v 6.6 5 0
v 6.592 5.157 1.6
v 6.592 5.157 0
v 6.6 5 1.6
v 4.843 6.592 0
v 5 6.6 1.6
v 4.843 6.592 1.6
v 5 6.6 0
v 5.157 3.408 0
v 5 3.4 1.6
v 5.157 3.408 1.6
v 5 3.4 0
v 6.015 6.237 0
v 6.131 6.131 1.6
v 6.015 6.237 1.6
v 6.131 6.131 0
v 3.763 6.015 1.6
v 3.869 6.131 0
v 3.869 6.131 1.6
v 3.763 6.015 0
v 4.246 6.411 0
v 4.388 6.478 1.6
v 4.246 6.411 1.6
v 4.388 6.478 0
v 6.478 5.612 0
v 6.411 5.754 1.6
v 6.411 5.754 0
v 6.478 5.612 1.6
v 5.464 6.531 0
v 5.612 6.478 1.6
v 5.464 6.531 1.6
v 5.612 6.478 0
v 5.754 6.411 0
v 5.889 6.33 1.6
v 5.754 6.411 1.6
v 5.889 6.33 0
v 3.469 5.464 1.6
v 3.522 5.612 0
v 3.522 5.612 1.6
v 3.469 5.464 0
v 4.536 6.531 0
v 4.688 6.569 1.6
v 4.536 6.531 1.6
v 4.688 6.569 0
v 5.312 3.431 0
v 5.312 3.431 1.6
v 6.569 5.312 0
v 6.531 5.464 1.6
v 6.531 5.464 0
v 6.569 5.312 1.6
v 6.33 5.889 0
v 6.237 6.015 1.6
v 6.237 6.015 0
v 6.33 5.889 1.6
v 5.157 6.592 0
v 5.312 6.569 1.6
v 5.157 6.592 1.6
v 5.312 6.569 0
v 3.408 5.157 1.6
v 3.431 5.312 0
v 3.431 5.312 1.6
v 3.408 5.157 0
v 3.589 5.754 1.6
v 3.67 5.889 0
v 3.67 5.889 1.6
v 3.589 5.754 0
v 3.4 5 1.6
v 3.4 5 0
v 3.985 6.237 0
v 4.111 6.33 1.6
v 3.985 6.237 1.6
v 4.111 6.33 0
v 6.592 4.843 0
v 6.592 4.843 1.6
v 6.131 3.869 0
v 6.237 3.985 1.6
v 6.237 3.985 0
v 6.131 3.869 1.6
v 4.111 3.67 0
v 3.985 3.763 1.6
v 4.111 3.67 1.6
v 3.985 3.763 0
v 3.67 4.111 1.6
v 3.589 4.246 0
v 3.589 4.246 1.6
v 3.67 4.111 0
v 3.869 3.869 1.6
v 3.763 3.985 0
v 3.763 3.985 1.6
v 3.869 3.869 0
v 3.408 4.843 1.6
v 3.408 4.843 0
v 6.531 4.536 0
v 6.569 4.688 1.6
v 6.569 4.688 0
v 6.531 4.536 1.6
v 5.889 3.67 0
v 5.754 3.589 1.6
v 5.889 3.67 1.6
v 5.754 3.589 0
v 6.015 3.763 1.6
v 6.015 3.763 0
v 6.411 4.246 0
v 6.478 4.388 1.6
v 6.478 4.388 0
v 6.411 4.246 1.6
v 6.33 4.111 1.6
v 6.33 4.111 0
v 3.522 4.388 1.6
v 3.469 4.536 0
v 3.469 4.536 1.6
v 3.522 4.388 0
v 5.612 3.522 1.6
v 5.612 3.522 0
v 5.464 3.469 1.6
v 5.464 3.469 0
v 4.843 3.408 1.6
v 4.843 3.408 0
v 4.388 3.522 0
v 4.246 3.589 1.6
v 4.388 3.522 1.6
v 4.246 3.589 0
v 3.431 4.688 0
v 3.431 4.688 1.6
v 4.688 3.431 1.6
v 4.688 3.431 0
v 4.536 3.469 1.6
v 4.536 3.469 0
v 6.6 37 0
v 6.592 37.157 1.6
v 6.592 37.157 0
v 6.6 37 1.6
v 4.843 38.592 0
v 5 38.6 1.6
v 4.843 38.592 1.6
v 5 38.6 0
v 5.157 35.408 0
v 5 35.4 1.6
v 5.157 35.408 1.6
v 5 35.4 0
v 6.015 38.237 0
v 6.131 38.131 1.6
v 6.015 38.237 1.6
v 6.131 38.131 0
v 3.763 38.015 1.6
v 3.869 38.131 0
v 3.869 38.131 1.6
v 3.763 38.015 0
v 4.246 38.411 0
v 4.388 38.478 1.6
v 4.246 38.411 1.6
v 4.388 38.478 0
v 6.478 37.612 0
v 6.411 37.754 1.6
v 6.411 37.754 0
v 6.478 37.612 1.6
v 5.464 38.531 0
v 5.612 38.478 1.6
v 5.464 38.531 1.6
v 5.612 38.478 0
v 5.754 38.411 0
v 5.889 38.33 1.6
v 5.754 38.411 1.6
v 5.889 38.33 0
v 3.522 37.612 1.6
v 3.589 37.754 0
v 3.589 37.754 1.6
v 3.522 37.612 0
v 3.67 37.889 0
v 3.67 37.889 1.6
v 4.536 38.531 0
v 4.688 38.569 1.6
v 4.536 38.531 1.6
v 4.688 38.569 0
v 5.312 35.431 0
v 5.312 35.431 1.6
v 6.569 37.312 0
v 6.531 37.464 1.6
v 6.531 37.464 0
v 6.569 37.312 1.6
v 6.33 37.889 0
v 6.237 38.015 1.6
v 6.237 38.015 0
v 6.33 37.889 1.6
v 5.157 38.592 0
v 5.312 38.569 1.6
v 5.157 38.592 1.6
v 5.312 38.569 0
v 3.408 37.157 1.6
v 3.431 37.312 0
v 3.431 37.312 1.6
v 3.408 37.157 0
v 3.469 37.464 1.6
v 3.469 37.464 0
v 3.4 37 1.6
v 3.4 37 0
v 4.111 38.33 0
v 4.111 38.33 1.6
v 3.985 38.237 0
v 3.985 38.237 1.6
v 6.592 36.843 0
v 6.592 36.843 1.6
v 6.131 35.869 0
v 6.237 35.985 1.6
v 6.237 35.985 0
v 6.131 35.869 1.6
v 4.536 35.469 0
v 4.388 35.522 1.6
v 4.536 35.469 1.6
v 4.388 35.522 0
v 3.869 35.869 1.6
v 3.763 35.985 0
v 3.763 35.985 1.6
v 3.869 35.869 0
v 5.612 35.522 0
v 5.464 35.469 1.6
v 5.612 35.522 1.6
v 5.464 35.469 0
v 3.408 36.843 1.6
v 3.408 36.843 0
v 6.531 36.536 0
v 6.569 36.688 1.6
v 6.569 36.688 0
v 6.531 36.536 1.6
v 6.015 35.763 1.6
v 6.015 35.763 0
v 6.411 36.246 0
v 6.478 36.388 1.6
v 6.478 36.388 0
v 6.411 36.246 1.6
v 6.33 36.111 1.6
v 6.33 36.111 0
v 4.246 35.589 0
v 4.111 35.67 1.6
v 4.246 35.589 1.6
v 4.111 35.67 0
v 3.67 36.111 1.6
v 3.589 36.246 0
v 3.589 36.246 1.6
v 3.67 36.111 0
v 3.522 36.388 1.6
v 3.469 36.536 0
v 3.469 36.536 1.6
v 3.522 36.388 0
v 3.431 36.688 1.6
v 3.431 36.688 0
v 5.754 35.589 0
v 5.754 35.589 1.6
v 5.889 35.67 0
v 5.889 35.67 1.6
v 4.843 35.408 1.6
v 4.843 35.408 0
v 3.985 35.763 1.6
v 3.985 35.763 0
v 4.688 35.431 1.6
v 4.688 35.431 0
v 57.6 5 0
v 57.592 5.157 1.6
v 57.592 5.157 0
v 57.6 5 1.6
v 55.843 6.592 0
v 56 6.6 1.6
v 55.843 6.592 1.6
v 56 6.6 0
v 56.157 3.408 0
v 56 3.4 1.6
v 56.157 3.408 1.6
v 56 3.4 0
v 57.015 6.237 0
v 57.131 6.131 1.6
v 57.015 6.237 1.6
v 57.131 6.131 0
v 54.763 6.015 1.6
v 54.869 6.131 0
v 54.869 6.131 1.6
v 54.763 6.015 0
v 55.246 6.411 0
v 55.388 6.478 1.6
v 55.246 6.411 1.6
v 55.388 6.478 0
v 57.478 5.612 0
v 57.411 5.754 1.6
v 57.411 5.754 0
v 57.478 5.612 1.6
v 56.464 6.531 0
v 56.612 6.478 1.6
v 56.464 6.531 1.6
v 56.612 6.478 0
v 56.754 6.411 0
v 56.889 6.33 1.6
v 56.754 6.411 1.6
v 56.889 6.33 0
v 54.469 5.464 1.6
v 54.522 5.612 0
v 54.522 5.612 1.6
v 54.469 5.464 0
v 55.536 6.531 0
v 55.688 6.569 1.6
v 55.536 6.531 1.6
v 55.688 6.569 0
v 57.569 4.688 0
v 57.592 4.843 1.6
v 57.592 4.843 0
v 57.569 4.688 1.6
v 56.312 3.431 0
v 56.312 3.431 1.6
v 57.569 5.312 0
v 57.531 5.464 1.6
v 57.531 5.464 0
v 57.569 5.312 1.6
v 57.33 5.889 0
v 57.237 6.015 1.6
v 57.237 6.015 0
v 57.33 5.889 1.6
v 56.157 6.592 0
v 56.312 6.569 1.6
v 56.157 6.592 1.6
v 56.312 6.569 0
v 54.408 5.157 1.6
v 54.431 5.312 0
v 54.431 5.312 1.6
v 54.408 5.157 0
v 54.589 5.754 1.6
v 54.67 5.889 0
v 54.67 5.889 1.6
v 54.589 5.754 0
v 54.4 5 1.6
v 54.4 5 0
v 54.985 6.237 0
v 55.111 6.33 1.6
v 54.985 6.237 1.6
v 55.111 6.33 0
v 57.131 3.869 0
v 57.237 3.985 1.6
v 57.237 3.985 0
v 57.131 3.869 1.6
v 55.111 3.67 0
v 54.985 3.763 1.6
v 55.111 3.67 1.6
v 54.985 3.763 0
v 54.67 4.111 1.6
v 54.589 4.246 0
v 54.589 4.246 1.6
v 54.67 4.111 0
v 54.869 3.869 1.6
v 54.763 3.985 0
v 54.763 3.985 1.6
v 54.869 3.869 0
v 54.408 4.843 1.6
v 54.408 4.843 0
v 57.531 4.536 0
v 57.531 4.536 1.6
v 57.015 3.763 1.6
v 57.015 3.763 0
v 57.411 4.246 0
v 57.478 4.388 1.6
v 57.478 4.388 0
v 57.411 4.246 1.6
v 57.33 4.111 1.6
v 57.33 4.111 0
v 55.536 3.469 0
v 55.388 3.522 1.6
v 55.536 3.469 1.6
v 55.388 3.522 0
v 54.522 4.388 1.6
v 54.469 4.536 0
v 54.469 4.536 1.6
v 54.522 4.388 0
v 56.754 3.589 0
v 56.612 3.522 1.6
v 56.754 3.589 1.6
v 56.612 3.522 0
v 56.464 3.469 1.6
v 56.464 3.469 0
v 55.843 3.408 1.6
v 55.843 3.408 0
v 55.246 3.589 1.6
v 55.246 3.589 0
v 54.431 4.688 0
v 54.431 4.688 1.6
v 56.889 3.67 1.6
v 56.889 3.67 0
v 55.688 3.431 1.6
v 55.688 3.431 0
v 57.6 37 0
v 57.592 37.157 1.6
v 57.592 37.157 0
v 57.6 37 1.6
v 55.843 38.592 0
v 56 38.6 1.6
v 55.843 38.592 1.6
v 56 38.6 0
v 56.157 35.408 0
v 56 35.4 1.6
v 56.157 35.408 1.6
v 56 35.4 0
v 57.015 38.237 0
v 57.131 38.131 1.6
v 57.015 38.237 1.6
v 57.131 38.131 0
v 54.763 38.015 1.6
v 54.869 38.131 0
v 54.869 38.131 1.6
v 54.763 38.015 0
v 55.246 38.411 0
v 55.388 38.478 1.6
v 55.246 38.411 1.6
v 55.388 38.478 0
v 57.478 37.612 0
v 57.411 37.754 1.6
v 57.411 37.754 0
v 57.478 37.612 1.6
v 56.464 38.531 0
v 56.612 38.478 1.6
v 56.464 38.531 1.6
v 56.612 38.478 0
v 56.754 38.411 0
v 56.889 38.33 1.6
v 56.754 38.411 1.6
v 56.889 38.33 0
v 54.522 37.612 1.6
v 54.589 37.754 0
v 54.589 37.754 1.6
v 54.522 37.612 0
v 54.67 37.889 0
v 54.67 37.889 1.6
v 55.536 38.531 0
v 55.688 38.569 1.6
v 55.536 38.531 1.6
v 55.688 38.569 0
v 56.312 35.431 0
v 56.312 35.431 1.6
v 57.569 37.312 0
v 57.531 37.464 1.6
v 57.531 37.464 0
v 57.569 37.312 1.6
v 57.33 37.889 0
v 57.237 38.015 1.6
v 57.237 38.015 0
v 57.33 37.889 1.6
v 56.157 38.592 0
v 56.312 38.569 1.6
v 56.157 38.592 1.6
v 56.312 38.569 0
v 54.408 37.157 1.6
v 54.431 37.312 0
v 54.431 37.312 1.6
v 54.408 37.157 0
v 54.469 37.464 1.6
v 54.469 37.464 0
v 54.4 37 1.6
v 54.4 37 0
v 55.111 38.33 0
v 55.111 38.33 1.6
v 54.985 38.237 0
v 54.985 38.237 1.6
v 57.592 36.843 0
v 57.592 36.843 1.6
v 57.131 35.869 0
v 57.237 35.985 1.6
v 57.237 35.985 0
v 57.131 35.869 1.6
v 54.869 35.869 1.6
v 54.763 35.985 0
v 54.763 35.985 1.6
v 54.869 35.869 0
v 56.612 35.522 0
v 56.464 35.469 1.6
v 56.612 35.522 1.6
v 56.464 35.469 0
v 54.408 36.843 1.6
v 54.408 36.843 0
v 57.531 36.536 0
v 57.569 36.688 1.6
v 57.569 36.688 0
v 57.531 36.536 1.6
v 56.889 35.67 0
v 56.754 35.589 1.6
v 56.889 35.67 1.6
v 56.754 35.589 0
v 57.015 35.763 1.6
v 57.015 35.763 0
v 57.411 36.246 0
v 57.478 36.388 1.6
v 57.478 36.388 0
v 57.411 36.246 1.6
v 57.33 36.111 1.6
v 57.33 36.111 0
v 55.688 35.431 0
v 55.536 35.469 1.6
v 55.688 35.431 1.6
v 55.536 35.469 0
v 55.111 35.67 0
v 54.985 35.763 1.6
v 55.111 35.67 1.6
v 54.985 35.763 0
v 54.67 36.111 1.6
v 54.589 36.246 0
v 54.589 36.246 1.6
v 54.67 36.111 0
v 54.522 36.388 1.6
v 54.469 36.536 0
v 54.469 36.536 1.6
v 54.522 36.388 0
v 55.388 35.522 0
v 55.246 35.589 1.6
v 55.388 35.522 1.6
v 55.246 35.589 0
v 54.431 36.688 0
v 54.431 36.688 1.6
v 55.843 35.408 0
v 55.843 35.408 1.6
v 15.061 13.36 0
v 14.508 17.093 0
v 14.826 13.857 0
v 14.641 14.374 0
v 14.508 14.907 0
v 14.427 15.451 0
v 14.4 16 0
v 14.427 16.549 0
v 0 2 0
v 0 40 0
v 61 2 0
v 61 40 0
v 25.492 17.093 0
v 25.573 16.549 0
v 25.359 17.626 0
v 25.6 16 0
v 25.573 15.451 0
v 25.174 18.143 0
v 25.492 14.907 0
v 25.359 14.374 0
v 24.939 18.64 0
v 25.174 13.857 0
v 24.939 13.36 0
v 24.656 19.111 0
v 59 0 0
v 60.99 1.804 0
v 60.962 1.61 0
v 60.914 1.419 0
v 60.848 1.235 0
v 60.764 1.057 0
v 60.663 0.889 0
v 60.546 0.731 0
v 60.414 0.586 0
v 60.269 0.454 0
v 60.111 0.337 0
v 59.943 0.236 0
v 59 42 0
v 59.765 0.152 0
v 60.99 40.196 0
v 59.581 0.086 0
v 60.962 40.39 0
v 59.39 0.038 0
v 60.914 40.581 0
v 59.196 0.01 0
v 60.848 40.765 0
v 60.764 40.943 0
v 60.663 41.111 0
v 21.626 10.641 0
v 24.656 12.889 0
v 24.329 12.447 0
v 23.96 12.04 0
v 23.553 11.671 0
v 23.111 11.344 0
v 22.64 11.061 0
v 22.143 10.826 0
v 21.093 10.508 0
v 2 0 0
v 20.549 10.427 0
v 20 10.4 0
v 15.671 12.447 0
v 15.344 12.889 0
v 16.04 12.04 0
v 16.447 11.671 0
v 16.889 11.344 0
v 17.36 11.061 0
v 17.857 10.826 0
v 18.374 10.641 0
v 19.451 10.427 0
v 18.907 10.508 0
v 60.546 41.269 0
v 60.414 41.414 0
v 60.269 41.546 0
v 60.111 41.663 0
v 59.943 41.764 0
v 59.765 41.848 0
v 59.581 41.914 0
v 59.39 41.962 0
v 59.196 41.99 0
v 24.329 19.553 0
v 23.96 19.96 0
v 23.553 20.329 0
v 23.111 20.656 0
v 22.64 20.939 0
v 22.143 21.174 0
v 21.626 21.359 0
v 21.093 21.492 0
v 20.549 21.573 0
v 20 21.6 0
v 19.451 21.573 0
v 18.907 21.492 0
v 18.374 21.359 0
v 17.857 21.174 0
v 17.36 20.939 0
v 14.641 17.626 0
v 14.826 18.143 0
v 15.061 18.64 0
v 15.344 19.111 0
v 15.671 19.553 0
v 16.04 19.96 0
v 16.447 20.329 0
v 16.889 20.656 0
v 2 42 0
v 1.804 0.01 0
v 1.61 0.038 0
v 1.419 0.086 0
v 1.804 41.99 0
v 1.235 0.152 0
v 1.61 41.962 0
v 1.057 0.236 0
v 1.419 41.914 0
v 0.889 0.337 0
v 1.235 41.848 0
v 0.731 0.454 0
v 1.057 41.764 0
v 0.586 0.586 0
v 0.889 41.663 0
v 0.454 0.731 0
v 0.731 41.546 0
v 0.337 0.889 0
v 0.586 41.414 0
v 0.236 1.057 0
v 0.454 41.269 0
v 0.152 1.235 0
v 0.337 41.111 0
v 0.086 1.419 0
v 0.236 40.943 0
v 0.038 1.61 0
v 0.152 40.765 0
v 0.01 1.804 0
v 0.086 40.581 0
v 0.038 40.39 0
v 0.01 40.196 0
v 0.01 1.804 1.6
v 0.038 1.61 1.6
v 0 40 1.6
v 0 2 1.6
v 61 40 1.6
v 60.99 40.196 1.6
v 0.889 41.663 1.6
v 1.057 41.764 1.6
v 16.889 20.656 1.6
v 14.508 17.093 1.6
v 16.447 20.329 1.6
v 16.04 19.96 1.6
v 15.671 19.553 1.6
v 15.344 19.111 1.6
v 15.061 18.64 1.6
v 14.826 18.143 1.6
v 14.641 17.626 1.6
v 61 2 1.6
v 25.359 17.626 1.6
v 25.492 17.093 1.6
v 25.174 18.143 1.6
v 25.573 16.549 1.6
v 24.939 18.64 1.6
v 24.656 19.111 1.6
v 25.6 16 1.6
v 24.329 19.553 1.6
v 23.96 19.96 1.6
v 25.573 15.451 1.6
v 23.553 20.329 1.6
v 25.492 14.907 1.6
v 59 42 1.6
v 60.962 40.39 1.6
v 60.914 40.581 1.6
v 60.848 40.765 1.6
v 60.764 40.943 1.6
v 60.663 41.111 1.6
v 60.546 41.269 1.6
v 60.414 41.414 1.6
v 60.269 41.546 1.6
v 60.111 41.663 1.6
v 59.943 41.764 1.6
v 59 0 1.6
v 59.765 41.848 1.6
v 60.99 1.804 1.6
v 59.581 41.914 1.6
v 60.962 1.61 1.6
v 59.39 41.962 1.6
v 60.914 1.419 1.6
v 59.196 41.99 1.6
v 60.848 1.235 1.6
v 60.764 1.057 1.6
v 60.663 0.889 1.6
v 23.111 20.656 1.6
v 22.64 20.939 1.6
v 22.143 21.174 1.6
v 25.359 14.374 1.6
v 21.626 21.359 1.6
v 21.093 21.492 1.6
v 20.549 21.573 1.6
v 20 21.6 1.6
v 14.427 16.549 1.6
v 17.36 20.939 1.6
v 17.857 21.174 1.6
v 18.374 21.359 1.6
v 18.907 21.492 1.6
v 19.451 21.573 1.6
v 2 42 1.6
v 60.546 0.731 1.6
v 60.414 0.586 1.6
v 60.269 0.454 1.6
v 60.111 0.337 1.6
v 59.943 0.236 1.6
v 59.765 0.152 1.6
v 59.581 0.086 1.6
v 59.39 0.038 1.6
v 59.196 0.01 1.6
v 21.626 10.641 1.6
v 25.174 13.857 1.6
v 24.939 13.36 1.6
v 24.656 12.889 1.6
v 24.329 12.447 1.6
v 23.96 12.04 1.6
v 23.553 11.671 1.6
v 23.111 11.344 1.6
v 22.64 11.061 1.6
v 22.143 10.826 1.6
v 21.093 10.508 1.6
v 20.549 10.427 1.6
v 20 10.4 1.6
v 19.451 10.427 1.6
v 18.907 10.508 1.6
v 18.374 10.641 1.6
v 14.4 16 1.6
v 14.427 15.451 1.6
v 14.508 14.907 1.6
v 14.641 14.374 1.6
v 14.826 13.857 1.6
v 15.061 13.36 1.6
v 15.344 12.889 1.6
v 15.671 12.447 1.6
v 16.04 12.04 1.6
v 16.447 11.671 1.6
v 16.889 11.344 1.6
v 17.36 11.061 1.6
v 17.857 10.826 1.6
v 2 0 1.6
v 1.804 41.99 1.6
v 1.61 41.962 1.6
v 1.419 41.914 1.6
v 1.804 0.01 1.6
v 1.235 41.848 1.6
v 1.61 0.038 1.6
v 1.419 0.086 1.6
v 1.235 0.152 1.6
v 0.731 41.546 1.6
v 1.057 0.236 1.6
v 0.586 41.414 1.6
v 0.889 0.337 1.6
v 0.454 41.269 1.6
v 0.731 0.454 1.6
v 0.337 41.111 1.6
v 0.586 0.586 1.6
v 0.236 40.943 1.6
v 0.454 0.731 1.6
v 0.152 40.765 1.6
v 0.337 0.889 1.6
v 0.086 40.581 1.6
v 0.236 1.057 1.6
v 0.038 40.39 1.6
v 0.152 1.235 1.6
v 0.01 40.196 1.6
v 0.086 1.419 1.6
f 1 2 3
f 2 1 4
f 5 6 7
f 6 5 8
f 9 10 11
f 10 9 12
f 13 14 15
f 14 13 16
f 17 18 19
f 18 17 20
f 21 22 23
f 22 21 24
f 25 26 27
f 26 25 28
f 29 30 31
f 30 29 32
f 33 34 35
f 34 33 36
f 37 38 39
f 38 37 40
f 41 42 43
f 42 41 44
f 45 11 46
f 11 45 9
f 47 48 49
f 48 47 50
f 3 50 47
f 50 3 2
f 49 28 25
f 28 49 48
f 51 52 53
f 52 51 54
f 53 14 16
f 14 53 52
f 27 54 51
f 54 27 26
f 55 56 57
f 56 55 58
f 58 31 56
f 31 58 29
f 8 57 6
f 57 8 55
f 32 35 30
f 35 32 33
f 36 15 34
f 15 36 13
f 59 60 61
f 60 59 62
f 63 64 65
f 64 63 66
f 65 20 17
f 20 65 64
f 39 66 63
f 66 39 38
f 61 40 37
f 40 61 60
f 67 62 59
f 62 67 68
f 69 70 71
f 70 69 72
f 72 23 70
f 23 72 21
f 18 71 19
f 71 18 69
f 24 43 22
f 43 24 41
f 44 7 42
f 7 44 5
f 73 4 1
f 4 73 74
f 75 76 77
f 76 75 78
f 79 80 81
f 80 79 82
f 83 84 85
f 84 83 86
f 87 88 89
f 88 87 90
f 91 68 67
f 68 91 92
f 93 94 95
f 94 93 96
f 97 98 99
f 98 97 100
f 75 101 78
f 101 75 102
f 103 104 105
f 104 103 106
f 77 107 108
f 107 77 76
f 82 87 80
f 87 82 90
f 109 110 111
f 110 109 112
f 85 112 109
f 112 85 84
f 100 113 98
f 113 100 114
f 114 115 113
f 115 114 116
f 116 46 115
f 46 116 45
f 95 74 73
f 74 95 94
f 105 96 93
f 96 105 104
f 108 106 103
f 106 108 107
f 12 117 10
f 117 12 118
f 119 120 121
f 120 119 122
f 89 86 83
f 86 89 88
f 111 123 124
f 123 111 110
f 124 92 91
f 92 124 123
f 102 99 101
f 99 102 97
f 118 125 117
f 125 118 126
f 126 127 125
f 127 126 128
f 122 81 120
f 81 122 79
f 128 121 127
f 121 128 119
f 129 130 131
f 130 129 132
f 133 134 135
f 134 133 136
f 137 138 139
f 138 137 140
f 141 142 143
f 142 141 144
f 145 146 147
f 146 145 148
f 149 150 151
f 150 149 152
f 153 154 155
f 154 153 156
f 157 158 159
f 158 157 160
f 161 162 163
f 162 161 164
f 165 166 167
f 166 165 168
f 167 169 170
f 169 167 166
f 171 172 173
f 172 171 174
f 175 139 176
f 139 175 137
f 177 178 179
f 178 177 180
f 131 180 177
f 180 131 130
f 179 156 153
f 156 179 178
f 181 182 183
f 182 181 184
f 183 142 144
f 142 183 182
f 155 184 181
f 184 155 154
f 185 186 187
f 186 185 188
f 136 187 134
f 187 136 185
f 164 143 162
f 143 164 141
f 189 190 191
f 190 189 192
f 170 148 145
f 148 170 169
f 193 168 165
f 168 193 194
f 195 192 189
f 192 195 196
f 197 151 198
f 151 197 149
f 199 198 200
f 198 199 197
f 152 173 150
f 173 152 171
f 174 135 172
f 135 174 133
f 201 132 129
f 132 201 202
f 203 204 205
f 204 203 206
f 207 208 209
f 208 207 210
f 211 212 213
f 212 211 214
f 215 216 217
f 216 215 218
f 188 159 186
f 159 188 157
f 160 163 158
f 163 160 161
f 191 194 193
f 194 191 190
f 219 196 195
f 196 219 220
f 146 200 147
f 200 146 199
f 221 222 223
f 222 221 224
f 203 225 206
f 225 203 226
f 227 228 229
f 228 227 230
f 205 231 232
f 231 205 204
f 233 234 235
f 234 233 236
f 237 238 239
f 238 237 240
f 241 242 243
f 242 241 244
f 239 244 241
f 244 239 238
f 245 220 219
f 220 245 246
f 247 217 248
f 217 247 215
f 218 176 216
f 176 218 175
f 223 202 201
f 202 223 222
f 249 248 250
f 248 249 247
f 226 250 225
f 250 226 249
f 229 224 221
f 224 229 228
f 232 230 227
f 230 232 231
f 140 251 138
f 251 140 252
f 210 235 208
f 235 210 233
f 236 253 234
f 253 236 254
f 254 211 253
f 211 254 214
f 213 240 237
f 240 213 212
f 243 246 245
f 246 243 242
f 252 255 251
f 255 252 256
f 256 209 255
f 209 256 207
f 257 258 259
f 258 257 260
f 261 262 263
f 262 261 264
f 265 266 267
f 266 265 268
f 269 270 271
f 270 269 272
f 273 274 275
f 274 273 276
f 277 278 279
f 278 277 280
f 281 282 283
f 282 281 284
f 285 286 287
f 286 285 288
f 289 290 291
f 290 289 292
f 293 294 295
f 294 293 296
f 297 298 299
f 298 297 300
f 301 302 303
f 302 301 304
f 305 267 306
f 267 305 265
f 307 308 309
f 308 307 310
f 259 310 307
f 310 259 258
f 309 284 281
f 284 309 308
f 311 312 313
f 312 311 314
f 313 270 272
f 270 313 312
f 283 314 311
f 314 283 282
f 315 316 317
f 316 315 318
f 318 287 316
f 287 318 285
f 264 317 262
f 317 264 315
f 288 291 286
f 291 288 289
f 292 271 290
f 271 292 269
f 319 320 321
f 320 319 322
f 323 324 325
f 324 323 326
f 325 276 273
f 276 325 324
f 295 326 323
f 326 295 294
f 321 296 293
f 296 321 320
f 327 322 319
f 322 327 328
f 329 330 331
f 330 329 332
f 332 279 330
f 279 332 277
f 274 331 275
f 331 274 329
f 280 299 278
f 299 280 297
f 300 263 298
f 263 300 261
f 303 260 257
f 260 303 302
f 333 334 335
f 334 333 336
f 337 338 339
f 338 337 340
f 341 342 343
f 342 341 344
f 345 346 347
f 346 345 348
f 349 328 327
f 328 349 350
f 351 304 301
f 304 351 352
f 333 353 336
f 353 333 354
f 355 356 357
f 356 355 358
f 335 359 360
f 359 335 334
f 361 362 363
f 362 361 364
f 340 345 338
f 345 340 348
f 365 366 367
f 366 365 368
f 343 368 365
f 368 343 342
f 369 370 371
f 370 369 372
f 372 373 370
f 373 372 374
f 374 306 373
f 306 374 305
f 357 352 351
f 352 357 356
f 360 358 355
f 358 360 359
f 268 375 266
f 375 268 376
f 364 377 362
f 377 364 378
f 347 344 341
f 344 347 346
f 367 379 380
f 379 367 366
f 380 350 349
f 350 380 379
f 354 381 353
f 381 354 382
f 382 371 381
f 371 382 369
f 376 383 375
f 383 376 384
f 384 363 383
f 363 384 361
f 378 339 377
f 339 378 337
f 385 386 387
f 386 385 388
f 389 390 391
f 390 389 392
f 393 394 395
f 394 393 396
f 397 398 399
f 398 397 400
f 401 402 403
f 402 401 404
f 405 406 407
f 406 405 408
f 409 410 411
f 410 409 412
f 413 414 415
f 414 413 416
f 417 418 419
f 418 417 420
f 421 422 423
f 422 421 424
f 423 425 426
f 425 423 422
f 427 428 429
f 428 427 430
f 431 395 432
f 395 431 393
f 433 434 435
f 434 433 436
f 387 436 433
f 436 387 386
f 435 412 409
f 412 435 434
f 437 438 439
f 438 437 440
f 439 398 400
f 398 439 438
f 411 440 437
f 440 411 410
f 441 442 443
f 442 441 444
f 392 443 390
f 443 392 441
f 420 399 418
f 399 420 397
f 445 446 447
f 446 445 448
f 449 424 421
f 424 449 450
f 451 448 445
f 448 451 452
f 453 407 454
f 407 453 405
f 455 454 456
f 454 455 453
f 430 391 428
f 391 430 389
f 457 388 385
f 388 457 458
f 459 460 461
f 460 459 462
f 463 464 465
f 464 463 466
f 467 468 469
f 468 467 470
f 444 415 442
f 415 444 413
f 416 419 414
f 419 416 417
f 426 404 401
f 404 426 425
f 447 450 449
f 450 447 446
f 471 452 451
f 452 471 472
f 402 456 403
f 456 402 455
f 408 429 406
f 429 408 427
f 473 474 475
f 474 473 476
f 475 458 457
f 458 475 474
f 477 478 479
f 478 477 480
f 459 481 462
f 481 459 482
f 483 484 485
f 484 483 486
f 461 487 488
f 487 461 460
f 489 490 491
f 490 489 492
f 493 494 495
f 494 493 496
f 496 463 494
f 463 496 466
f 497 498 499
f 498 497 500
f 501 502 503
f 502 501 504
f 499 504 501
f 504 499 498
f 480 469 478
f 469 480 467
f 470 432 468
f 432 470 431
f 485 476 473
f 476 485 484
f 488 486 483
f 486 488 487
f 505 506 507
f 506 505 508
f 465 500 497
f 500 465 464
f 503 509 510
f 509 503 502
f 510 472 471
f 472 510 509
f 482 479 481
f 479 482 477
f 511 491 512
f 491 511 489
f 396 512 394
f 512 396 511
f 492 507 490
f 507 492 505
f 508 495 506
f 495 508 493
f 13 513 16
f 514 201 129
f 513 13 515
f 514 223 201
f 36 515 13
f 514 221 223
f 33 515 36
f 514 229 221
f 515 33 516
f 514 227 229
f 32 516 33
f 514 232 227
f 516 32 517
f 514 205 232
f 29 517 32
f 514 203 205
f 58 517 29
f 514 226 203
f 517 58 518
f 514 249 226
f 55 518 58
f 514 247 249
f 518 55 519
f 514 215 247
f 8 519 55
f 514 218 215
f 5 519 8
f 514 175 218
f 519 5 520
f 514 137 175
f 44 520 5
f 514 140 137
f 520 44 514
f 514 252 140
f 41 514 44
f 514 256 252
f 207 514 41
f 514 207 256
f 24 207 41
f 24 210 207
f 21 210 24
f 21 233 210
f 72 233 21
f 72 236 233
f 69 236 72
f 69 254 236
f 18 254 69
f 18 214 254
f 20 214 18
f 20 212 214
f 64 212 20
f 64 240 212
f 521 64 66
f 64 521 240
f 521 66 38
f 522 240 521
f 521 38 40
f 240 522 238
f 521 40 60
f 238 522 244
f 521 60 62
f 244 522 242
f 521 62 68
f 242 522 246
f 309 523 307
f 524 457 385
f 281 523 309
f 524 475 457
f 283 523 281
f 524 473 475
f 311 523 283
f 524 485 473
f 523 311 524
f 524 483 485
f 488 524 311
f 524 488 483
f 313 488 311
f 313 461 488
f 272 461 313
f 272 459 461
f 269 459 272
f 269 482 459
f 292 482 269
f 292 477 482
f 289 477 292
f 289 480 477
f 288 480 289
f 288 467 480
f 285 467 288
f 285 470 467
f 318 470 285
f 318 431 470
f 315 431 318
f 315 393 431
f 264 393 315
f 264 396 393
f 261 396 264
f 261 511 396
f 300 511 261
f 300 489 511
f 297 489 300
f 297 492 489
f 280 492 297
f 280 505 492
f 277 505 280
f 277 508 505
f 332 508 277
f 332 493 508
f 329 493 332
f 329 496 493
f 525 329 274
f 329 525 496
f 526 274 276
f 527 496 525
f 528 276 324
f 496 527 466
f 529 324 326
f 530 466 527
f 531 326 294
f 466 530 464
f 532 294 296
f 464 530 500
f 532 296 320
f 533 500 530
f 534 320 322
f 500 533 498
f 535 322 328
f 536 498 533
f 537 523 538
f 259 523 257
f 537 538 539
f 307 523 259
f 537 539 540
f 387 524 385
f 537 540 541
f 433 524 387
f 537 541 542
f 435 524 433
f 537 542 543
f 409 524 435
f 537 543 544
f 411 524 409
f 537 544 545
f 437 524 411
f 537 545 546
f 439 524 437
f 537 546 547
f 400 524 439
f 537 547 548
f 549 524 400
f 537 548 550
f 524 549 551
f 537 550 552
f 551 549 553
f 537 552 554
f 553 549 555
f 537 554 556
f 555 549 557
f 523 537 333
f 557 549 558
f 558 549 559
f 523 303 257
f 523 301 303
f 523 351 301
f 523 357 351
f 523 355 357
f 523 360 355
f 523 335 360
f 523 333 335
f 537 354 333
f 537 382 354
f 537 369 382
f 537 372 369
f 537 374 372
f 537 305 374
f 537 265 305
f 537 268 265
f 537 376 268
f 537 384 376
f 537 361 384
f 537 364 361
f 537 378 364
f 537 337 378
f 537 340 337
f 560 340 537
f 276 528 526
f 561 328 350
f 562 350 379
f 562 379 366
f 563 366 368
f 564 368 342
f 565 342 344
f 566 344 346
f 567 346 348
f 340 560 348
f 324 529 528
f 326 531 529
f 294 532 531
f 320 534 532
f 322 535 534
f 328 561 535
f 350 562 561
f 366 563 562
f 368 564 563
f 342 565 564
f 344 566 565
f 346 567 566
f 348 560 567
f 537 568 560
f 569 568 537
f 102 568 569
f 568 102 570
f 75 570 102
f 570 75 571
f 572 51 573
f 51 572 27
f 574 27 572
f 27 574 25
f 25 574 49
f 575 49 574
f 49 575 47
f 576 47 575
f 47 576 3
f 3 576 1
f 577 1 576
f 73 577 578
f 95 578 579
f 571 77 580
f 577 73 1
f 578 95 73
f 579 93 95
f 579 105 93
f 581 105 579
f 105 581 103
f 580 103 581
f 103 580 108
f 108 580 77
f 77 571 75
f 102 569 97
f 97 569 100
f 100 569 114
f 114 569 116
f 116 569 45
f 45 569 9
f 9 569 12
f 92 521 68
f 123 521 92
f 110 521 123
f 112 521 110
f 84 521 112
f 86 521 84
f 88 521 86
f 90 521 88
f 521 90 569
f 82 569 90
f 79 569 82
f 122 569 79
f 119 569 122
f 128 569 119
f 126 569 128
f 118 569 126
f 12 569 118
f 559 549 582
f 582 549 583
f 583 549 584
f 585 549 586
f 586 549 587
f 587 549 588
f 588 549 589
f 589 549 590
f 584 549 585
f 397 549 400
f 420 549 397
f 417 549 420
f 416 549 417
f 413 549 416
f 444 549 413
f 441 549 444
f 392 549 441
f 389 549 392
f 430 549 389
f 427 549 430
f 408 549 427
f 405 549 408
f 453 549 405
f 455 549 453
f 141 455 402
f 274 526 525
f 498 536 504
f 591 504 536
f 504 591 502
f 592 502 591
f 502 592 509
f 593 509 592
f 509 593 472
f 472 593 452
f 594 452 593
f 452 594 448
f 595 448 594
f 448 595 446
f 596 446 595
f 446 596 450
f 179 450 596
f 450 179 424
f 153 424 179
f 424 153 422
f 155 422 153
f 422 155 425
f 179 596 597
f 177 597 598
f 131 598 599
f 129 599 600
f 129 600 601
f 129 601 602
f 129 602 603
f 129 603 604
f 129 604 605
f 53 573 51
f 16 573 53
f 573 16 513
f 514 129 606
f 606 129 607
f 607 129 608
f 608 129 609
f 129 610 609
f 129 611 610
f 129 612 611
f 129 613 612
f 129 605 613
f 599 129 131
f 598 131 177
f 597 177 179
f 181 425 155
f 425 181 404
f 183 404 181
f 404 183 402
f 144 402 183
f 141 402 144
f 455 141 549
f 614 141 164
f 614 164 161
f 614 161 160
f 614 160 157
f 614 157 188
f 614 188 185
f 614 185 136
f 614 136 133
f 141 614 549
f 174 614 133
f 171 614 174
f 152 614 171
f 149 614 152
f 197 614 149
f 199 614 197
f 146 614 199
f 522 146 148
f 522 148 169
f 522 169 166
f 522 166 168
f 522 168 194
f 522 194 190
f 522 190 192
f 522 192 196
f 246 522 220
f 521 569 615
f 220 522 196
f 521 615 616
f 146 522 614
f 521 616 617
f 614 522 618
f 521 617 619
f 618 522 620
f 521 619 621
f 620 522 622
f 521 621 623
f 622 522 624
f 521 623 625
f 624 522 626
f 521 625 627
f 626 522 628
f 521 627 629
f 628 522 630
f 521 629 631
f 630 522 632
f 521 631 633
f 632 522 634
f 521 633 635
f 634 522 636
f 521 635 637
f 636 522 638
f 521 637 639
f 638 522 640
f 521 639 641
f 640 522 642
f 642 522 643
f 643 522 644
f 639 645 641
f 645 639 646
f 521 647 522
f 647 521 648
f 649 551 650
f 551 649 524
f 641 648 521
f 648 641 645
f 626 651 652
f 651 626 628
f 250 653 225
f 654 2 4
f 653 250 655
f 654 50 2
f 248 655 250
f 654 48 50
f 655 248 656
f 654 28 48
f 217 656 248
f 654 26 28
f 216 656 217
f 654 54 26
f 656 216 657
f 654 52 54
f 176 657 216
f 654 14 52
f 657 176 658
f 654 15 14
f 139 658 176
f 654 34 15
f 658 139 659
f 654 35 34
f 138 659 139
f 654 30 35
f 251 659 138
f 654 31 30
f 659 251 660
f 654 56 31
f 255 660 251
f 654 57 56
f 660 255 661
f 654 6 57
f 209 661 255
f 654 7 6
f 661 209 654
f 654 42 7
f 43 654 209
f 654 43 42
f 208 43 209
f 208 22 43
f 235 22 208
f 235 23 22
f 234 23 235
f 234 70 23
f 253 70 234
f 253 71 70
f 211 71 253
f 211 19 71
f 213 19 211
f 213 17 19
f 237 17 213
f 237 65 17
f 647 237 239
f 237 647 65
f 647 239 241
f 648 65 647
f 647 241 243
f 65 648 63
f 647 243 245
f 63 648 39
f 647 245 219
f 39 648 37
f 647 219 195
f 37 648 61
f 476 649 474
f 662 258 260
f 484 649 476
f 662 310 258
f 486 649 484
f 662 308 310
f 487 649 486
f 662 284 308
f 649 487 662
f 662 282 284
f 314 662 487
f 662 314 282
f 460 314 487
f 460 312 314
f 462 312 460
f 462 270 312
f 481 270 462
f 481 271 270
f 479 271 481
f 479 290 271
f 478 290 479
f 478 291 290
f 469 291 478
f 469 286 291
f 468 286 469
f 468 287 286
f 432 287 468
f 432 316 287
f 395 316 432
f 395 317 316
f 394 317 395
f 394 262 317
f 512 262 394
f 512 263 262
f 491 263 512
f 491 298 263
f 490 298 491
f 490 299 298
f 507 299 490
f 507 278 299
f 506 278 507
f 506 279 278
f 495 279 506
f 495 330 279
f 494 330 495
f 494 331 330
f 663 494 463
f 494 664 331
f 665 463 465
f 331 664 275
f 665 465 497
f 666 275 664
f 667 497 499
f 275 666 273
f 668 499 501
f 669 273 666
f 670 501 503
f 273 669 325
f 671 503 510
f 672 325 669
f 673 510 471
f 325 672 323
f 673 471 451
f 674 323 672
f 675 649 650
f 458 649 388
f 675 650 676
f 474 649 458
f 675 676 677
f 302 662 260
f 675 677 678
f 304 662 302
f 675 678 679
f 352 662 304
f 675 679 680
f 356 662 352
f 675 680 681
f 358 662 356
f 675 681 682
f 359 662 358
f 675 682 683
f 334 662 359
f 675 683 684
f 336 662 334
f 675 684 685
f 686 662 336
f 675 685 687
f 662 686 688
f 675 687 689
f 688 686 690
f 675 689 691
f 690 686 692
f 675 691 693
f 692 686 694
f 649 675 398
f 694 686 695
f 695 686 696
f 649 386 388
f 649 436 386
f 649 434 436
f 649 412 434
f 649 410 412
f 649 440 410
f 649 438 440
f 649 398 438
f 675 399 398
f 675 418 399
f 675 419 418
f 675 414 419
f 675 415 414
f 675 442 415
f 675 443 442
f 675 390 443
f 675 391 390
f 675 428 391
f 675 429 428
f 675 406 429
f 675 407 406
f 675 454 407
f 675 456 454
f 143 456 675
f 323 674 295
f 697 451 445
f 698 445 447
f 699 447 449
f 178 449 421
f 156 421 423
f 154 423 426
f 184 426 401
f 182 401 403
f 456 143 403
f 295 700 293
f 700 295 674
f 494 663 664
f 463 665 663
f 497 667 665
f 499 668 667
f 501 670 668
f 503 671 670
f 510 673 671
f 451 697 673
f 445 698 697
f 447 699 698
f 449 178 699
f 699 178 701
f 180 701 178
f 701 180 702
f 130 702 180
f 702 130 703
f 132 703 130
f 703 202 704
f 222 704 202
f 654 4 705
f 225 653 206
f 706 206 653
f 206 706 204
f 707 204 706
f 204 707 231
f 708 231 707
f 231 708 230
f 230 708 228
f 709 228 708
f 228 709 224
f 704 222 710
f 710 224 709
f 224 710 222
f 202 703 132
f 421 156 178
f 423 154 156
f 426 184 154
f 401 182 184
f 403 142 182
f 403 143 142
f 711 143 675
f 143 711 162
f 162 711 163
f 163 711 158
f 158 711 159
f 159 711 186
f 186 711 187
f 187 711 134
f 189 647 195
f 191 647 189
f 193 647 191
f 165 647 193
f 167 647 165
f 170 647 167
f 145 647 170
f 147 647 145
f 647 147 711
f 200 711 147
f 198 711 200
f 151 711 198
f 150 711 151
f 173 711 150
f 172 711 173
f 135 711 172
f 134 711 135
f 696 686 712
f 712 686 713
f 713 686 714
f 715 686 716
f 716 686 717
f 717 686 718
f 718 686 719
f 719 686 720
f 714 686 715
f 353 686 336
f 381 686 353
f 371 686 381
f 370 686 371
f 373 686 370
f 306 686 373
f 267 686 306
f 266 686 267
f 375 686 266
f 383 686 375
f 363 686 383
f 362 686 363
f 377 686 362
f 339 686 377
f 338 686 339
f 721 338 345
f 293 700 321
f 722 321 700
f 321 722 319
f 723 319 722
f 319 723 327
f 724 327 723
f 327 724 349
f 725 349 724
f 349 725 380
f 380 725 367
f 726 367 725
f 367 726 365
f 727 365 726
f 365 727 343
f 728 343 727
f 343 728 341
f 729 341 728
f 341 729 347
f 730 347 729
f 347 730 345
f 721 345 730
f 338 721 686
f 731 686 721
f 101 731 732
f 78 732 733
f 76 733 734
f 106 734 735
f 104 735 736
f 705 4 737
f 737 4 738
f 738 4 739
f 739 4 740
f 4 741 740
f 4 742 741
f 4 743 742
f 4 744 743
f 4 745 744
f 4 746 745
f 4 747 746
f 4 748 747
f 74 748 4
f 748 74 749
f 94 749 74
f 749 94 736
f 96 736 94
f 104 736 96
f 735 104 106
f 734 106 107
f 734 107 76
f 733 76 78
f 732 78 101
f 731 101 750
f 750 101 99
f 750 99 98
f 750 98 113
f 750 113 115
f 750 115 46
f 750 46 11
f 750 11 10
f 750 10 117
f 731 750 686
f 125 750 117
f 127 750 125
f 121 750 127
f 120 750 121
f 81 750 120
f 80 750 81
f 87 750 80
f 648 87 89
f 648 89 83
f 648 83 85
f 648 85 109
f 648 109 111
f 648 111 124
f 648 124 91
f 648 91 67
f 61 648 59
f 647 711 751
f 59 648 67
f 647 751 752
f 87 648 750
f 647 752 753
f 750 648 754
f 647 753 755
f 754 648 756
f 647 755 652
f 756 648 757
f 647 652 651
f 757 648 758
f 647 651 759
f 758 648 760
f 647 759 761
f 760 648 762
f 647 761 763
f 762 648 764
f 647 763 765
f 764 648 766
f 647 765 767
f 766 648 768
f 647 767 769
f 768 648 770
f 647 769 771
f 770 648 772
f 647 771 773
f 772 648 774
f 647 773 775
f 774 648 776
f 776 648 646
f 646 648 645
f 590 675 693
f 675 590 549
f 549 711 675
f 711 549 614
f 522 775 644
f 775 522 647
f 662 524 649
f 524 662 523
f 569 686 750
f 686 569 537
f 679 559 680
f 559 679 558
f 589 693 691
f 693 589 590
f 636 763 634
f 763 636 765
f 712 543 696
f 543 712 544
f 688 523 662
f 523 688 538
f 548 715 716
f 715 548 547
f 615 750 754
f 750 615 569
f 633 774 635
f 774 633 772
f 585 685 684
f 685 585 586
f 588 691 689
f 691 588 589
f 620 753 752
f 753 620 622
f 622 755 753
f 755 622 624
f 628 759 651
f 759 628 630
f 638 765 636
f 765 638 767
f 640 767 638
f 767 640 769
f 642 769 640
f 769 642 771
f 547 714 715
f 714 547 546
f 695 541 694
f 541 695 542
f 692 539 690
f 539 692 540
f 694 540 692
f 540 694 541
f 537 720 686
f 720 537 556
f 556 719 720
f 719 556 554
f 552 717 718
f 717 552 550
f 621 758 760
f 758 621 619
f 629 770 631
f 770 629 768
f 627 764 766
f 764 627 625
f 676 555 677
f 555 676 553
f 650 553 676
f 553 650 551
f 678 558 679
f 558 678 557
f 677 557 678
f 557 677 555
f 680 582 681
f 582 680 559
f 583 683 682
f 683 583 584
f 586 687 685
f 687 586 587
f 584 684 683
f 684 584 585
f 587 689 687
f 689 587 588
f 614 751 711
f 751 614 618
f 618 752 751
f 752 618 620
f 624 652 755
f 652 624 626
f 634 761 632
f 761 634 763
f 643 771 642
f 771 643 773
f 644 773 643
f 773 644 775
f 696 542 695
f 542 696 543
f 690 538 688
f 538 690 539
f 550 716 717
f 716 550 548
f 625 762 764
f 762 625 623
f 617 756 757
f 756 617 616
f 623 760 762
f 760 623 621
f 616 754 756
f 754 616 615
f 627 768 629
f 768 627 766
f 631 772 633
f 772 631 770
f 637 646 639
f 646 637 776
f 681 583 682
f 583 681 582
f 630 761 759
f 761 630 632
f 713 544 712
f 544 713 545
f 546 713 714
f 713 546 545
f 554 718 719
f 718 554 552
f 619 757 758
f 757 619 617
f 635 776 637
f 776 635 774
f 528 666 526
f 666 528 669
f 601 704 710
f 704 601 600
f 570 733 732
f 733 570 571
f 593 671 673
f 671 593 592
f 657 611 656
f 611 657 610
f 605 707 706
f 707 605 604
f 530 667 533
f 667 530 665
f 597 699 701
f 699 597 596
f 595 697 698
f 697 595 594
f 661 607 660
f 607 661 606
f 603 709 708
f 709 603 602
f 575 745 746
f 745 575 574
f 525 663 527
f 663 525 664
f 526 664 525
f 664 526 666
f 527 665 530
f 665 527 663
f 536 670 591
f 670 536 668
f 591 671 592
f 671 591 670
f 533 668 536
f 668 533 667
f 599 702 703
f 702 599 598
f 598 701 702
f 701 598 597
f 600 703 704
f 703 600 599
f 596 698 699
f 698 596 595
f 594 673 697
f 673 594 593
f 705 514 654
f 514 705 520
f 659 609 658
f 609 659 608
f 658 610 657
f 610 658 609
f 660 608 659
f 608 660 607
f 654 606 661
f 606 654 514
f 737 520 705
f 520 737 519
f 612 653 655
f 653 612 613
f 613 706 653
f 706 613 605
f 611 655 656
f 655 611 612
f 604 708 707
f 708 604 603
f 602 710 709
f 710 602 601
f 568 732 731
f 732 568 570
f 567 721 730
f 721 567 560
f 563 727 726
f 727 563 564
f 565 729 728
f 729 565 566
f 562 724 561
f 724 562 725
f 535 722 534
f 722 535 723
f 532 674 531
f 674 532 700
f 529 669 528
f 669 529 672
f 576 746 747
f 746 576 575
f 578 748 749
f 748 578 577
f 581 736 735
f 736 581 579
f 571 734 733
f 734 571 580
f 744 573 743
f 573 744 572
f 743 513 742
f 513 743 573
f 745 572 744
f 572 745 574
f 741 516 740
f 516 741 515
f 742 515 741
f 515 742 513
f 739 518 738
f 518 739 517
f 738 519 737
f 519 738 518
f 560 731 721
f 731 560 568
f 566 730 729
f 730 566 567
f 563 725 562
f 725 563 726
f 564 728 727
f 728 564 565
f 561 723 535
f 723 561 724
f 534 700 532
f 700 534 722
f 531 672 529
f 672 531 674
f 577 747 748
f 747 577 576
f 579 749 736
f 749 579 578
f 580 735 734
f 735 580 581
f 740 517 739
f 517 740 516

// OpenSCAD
// file: ../../Various/SCAD/rounded_box.scad
/**
 * Small "library" for creating boxes with rounded edges.
 *
 * Hendrik Busch, 2017-18 (https://github.com/hmbusch)
 *
 */
 
/**
 * Creates a 2D-shape of a box with the given dimensions and rounded edges. 
 * Be sure to increase $fn for nicer edges.
 *
 * @param width
 *          the desired width of the box (default is 10mm)
 * @param depth
 *          the desired depth of the box (default is 10mm)
 * @param height
 *          the desired height of the box (default is 10mm)
 * @param edge_radius
 *          the radius of all the edges on the xy-plane (default is 2mm)
 */  
module box_with_round_edges_2d(width = 10, depth = 10, edge_radius = 2) {
    ed = edge_radius * 2;
    translate([edge_radius, edge_radius, 0]) hull() {
        circle(d = ed);
        translate([width - ed, 0, 0]) circle(d = ed);
        translate([0, depth - ed, 0]) circle(d = ed);
        translate([width - ed, depth - ed, 0]) circle(d = ed);    
    }
}
 
/**
 * Call to create a box with rounded edges (edges will be round on one plane only).
 * Be sure to increase $fn for nicer edges.
 * 
 * @param width
 *          the desired width of the box (default is 10mm)
 * @param depth
 *          the desired depth of the box (default is 10mm)
 * @param height
 *          the desired height of the box (default is 10mm)
 * @param edge_radius
 *          the radius of all the edges on the xy-plane (default is 2mm)
 *
 */
module box_with_round_edges_3d(width = 10, depth = 10, height = 10, edge_radius = 2) {
	linear_extrude(height = height) {
		box_with_round_edges_2d(width, depth, edge_radius);
	}
}

/**
 * Call to create a box with rounded edges (edges will be round on one plane only).
 * Be sure to increase $fn for nicer edges. This module has inputs that resemble
 * those of cube() so that it can act as a drop-in replacement.
 * 
 * @param dimensions
 *          3-value-array with x, y and z dimensions (default is 10x10x10mm).
 * @param edge_radius
 *          the radius of all the edges on the xy-plane (default is 2mm)
 *
 */
module box_with_round_edges_3d(dimensions = [10, 10, 10], edge_radius = 2) {
	linear_extrude(height = dimensions[2]) {
		box_with_round_edges_2d(dimensions[0], dimensions[1], edge_radius);
	}
}
// main file
include <../../Various/SCAD/rounded_box.scad>;

socket_dia = 11.2;
socket_offset_x = 20;
socket_offset_y = 42 - 26;

screw_hole_dia = 3.2;
screw_hole_offset = 5;

plate_x = 61;
plate_y = 42;
plate_thickness = 1.6;

f = 0.01;
df = f*2;

$fn = 64;

difference() {
    box_with_round_edges_3d([plate_x, plate_y, plate_thickness]);
    translate([socket_offset_x, socket_offset_y, -f])
        cylinder(d = socket_dia, h = plate_thickness + df);
    
    for (x = [screw_hole_offset, plate_x - screw_hole_offset]) {
        for (y = [screw_hole_offset, plate_y - screw_hole_offset]) {
            translate([x, y, -f])
                cylinder(d = screw_hole_dia, h = plate_thickness + df);            
        }
    }
}
